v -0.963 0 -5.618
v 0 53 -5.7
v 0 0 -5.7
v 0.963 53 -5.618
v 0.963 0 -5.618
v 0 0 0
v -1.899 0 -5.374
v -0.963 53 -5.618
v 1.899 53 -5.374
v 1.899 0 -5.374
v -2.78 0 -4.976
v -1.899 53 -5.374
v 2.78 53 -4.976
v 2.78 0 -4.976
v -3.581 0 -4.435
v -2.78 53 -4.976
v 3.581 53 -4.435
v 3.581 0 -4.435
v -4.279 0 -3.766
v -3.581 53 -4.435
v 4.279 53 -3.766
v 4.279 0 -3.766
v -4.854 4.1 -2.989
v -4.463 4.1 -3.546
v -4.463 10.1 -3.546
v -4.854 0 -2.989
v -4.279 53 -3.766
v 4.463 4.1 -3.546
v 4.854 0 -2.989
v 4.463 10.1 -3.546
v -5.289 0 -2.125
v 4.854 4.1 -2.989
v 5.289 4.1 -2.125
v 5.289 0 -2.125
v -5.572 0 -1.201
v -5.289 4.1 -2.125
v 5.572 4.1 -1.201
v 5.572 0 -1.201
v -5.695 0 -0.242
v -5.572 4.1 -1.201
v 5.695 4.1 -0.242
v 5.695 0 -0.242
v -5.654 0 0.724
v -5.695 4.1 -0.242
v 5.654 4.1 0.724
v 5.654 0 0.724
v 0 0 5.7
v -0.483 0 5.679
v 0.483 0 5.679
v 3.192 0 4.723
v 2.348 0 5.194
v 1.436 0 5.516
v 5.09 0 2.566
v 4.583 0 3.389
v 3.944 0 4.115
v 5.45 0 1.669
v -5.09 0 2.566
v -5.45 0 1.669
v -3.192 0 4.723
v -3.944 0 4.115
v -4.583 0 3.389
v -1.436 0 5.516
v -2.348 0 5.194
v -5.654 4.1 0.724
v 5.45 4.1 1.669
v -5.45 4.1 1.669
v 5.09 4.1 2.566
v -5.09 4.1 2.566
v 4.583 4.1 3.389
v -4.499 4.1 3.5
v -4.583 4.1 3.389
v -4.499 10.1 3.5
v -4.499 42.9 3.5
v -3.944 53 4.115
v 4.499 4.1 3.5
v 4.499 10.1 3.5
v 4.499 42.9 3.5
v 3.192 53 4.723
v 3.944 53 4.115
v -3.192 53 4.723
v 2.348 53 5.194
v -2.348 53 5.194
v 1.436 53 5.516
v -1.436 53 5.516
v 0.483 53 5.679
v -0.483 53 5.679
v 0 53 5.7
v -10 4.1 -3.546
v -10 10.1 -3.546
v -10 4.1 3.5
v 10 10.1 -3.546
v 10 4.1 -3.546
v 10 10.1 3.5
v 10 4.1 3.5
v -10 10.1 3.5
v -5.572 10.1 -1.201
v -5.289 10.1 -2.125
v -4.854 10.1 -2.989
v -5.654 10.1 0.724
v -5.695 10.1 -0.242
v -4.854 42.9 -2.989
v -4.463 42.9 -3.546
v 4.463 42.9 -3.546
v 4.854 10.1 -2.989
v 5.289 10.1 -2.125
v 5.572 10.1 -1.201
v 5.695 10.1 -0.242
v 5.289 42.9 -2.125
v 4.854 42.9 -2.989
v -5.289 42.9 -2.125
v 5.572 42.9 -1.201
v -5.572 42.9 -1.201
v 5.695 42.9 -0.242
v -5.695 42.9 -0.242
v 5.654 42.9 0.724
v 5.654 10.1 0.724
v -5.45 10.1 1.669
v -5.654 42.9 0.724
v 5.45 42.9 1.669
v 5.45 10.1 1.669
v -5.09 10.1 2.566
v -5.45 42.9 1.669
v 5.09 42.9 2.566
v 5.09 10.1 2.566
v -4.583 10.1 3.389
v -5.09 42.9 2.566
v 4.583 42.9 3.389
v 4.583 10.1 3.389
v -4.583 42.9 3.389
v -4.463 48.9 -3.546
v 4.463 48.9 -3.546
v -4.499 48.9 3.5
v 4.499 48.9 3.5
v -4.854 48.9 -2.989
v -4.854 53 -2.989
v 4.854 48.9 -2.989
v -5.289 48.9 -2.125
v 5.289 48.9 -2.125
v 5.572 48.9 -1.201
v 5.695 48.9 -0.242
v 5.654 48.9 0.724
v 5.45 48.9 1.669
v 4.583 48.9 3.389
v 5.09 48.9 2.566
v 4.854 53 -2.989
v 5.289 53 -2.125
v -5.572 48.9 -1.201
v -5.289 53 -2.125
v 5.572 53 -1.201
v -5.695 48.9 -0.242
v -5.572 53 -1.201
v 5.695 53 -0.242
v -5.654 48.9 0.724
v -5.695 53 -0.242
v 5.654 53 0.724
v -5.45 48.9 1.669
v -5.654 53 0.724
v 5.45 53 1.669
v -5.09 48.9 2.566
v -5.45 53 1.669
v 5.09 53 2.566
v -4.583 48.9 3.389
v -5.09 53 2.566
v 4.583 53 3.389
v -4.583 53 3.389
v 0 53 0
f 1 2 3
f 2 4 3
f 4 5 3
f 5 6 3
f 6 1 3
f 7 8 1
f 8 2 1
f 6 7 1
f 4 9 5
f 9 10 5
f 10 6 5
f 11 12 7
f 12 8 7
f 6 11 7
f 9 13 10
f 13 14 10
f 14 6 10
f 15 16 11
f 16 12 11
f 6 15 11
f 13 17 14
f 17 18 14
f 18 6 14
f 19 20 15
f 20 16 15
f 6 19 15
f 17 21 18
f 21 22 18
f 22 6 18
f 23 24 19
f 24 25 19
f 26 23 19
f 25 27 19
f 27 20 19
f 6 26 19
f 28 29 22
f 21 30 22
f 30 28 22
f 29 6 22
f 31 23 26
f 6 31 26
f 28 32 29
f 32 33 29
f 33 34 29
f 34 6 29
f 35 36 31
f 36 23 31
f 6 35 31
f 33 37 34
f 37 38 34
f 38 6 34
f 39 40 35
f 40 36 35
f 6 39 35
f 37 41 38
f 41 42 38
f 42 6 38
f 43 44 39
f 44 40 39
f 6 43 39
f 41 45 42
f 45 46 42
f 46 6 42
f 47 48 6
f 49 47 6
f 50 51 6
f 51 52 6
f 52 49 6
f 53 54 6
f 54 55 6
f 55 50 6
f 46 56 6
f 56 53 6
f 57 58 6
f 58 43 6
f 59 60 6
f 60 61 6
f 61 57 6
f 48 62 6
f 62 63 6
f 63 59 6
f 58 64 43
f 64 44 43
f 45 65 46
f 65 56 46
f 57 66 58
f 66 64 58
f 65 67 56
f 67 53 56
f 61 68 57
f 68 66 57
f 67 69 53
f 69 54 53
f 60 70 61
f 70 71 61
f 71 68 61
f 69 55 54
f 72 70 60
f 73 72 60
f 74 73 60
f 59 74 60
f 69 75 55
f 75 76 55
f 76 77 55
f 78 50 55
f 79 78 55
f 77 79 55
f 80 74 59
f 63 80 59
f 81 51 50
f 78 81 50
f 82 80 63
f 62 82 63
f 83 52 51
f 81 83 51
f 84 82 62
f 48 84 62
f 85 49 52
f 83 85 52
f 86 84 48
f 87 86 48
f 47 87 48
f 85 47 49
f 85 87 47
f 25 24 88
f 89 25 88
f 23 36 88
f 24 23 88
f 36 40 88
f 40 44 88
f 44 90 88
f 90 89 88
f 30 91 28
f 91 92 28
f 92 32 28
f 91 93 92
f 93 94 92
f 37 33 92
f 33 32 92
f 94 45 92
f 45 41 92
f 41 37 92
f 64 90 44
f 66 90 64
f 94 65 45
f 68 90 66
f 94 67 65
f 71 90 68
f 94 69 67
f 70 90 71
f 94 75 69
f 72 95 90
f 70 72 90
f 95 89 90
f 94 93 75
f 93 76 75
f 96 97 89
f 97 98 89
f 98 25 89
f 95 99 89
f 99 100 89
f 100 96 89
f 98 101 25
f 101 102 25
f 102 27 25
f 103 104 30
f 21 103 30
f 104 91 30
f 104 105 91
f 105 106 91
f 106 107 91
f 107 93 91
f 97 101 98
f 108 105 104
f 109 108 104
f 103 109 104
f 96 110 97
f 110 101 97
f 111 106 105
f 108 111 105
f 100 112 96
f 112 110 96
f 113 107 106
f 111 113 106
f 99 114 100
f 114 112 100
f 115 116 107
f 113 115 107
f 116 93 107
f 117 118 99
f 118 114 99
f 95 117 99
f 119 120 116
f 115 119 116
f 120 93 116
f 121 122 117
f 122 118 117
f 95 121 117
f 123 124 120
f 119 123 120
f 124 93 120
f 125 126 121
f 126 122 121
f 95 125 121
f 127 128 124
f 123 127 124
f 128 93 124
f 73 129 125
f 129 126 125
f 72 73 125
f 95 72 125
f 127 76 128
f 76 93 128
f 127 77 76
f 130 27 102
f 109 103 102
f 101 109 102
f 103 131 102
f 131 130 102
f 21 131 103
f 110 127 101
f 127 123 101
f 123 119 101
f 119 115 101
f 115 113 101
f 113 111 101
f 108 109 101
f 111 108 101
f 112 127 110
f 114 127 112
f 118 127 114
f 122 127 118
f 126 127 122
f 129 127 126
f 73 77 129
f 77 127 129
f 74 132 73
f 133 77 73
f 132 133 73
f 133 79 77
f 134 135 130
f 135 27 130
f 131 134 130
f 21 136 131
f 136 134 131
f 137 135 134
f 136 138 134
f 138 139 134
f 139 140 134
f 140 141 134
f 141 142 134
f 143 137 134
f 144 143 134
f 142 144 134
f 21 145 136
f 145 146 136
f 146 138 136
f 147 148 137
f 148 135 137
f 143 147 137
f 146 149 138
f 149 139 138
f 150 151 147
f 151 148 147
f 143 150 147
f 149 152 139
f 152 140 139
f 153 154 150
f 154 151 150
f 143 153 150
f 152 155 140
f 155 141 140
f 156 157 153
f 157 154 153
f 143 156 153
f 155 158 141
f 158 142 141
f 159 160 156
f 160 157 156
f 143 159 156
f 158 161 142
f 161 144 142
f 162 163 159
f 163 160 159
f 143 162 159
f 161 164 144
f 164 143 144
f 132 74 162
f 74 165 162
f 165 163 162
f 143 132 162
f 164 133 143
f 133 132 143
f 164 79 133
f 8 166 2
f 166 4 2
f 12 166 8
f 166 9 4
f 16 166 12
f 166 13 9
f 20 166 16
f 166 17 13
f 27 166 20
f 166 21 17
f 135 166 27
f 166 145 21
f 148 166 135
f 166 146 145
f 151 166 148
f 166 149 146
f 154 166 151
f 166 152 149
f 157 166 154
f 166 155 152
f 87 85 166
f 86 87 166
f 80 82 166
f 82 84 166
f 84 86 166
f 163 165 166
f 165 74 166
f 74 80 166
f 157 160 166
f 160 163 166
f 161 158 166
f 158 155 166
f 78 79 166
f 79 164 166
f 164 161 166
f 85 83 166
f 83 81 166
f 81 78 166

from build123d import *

# Parameters (mm, degrees)
SKETCH_1_R               = 5.7
EXTRUDE_1_DEPTH          = 53
CUT_EXTRUDE_1_DEPTH      = 54.609514081
CUT_EXTRUDE_1_DEPTH_BACK = 54.609514081
SKETCH_2_W               = 7.04551248
SKETCH_2_H               = 6
EXTRUDE_2_DEPTH          = 10
EXTRUDE_2_DEPTH_BACK     = 10
SKETCH_2_4_W             = 7.04551248
SKETCH_2_4_H             = 6


with BuildPart() as part:
    # 草图1 → 凸台-拉伸1 (new body)
    with BuildSketch(Plane(origin=(0, 0, 0), x_dir=(1, 0, 0), z_dir=(0, 1, 0))):
        Circle(SKETCH_1_R)
    extrude(amount=EXTRUDE_1_DEPTH)

    # 草图2 → 切除-拉伸1 (cut, two sides: drawn at the far end of the back side and taken through both)
    with BuildSketch(Plane(origin=(0, 0, 0), x_dir=(0, 0, -1), z_dir=(1, 0, 0)).offset(-CUT_EXTRUDE_1_DEPTH_BACK)):
        with Locations((0.02275624, 45.9)):
            Rectangle(SKETCH_2_W, SKETCH_2_H)
    extrude(amount=CUT_EXTRUDE_1_DEPTH + CUT_EXTRUDE_1_DEPTH_BACK, mode=Mode.SUBTRACT)

    # 草图2<4> → 凸台-拉伸2 (add, two sides: drawn at the far end of the back side and taken through both)
    with BuildSketch(Plane(origin=(0, 0, 0), x_dir=(0, 0, -1), z_dir=(1, 0, 0)).offset(-EXTRUDE_2_DEPTH_BACK)):
        with Locations((0.02275624, 7.1)):
            Rectangle(SKETCH_2_4_W, SKETCH_2_4_H)
    extrude(amount=EXTRUDE_2_DEPTH + EXTRUDE_2_DEPTH_BACK)


solid = part.part
